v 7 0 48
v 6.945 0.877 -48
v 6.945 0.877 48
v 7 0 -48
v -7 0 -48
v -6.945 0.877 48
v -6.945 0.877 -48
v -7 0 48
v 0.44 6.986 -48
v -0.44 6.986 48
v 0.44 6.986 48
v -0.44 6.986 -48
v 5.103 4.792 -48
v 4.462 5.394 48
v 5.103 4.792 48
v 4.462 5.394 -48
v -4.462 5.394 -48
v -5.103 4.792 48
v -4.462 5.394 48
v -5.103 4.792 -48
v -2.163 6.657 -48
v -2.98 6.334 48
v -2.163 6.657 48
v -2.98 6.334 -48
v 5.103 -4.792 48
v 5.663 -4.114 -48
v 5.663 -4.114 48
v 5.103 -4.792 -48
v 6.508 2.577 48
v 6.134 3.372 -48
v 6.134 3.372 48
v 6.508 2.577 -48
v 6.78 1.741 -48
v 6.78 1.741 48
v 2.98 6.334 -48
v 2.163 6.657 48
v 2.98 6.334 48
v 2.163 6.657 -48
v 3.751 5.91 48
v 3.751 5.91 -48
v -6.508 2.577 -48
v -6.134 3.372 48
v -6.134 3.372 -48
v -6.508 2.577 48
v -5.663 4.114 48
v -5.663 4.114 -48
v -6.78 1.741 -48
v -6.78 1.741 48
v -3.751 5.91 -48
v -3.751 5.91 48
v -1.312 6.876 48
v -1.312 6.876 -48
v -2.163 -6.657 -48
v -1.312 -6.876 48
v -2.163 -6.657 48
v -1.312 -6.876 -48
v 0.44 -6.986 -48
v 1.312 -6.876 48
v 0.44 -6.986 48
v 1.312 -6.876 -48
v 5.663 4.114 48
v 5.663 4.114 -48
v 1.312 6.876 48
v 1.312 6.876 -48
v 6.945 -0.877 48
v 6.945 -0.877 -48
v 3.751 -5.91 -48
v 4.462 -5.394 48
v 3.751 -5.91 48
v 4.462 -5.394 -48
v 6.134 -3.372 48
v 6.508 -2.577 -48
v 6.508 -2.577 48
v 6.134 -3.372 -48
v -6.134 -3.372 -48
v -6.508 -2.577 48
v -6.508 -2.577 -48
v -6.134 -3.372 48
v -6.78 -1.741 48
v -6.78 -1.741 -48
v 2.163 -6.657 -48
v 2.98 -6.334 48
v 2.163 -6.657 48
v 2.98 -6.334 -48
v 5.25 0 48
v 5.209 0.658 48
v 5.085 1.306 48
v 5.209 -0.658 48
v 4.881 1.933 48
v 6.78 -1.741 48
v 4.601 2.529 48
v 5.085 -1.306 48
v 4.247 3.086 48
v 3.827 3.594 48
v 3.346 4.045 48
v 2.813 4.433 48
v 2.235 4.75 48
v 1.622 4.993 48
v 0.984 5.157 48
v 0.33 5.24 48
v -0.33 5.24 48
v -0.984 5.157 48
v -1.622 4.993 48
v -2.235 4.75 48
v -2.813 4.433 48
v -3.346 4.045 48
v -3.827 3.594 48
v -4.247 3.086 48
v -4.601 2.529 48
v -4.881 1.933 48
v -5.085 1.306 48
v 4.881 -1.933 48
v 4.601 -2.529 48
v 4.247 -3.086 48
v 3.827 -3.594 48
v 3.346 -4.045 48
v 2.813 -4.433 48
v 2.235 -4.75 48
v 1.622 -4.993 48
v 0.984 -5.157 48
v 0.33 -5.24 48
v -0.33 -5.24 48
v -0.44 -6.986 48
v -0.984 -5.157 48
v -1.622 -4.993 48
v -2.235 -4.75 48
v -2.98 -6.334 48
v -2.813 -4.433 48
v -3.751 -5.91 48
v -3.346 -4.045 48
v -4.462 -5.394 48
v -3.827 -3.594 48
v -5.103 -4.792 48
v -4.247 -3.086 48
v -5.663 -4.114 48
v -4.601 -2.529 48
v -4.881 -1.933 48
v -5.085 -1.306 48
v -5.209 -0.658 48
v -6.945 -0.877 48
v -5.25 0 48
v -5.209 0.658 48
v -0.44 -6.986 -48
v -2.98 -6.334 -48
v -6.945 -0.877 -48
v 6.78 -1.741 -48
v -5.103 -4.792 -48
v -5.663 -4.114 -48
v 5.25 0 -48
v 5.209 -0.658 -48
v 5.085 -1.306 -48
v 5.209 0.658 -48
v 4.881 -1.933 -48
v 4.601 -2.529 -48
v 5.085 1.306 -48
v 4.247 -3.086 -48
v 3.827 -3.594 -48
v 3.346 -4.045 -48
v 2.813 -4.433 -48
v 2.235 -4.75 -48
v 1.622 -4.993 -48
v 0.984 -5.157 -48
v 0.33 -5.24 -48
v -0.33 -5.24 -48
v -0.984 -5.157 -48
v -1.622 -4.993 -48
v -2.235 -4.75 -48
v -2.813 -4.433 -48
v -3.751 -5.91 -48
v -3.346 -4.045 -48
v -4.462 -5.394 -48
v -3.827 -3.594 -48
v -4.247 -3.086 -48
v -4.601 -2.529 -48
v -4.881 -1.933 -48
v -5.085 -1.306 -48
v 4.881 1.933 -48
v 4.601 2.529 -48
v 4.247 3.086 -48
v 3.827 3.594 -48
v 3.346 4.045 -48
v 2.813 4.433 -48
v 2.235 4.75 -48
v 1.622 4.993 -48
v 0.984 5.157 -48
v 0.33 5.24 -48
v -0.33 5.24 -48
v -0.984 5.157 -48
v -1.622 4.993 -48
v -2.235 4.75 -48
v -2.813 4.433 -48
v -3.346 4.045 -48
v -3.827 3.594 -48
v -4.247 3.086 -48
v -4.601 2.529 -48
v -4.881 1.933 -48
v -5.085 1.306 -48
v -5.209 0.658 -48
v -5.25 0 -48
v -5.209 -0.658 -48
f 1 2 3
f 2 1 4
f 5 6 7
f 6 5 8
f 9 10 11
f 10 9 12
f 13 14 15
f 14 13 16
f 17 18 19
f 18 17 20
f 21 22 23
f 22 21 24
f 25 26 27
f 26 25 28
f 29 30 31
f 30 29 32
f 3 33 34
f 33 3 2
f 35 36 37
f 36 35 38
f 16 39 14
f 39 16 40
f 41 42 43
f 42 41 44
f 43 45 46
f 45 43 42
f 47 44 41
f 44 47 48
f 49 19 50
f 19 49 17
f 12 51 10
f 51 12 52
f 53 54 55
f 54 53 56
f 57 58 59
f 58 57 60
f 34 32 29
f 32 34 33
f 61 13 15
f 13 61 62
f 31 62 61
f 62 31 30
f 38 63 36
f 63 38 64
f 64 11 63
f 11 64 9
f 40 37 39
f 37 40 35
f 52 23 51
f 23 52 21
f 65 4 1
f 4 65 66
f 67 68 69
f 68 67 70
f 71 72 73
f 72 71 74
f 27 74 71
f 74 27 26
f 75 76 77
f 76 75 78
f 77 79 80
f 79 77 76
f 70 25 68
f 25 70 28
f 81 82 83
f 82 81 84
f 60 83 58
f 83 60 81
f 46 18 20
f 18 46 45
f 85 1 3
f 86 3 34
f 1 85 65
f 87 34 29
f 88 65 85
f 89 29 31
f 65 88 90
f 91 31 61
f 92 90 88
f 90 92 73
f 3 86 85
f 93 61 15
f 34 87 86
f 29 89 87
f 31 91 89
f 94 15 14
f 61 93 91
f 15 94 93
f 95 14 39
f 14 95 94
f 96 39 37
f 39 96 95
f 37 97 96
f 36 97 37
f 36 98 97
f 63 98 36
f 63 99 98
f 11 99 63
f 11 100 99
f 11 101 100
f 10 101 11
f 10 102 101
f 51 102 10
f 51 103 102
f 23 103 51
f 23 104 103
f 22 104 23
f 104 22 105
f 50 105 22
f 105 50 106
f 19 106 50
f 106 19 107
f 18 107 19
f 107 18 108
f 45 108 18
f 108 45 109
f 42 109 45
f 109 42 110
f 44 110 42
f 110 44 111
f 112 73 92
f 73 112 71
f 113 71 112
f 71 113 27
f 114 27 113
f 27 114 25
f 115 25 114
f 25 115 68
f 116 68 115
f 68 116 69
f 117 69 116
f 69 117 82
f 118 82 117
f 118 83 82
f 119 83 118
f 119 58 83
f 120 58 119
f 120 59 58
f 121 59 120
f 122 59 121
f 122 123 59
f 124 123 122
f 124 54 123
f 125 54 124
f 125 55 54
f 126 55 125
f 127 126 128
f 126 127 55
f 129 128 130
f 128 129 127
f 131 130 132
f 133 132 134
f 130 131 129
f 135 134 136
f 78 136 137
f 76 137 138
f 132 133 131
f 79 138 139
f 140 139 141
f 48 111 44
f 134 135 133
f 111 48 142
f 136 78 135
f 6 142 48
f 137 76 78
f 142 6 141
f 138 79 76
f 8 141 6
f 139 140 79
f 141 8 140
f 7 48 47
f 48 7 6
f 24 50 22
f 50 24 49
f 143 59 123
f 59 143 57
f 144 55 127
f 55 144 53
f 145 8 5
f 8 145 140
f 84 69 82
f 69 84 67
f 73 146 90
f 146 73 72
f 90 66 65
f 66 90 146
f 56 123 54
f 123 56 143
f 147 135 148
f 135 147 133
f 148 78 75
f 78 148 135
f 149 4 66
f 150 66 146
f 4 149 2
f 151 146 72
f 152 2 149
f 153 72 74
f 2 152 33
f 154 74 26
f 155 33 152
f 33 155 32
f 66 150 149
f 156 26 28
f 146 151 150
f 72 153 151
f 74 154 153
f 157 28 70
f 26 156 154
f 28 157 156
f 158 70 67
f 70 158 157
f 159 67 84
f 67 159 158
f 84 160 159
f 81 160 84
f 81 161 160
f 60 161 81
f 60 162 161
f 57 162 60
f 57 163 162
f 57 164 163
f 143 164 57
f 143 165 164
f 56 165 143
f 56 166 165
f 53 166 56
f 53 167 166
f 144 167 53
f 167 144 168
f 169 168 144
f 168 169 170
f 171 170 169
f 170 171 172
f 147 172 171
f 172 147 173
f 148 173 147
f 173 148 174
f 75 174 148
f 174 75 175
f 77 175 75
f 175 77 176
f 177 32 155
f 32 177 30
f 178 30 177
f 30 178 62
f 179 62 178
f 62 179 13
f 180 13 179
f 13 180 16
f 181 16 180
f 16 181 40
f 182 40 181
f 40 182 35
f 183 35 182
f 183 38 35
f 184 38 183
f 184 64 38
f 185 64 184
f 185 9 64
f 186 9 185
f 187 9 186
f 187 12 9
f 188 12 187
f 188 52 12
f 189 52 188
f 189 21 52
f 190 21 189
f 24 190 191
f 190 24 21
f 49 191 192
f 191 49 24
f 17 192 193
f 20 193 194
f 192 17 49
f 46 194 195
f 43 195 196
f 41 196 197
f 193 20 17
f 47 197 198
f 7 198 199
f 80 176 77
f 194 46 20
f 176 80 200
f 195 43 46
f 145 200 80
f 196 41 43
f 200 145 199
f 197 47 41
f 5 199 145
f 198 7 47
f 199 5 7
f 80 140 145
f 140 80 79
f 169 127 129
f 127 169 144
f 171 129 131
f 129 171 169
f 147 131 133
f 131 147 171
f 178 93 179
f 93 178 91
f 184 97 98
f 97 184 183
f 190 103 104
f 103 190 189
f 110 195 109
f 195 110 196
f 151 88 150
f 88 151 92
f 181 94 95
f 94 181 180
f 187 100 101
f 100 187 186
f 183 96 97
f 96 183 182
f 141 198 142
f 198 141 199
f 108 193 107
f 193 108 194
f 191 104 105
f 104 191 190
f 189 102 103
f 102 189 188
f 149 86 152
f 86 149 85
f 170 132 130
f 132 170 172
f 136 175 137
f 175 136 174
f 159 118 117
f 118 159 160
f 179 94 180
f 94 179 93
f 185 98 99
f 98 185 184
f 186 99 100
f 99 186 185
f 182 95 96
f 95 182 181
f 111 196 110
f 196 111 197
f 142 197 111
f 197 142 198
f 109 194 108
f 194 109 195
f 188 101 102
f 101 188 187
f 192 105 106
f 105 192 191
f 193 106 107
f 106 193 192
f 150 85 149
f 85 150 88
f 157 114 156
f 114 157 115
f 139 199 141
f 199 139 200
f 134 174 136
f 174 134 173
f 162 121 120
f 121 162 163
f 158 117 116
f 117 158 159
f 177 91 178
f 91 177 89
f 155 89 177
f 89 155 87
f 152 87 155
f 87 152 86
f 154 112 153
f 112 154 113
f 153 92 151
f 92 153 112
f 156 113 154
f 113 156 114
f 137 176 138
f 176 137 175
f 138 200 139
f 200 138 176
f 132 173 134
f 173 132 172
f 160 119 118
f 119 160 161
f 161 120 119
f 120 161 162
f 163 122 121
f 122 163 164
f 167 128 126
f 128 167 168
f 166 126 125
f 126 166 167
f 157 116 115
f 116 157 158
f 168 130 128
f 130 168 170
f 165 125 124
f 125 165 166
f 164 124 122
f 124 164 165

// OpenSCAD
$fn = 50;


difference() {
	union() {
		translate(v = [0, 0, -48.0000000000]) {
			cylinder(h = 96, r = 7.0000000000);
		}
	}
	union() {
		translate(v = [0, 0, -100.0000000000]) {
			cylinder(h = 200, r = 5.2500000000);
		}
	}
}
